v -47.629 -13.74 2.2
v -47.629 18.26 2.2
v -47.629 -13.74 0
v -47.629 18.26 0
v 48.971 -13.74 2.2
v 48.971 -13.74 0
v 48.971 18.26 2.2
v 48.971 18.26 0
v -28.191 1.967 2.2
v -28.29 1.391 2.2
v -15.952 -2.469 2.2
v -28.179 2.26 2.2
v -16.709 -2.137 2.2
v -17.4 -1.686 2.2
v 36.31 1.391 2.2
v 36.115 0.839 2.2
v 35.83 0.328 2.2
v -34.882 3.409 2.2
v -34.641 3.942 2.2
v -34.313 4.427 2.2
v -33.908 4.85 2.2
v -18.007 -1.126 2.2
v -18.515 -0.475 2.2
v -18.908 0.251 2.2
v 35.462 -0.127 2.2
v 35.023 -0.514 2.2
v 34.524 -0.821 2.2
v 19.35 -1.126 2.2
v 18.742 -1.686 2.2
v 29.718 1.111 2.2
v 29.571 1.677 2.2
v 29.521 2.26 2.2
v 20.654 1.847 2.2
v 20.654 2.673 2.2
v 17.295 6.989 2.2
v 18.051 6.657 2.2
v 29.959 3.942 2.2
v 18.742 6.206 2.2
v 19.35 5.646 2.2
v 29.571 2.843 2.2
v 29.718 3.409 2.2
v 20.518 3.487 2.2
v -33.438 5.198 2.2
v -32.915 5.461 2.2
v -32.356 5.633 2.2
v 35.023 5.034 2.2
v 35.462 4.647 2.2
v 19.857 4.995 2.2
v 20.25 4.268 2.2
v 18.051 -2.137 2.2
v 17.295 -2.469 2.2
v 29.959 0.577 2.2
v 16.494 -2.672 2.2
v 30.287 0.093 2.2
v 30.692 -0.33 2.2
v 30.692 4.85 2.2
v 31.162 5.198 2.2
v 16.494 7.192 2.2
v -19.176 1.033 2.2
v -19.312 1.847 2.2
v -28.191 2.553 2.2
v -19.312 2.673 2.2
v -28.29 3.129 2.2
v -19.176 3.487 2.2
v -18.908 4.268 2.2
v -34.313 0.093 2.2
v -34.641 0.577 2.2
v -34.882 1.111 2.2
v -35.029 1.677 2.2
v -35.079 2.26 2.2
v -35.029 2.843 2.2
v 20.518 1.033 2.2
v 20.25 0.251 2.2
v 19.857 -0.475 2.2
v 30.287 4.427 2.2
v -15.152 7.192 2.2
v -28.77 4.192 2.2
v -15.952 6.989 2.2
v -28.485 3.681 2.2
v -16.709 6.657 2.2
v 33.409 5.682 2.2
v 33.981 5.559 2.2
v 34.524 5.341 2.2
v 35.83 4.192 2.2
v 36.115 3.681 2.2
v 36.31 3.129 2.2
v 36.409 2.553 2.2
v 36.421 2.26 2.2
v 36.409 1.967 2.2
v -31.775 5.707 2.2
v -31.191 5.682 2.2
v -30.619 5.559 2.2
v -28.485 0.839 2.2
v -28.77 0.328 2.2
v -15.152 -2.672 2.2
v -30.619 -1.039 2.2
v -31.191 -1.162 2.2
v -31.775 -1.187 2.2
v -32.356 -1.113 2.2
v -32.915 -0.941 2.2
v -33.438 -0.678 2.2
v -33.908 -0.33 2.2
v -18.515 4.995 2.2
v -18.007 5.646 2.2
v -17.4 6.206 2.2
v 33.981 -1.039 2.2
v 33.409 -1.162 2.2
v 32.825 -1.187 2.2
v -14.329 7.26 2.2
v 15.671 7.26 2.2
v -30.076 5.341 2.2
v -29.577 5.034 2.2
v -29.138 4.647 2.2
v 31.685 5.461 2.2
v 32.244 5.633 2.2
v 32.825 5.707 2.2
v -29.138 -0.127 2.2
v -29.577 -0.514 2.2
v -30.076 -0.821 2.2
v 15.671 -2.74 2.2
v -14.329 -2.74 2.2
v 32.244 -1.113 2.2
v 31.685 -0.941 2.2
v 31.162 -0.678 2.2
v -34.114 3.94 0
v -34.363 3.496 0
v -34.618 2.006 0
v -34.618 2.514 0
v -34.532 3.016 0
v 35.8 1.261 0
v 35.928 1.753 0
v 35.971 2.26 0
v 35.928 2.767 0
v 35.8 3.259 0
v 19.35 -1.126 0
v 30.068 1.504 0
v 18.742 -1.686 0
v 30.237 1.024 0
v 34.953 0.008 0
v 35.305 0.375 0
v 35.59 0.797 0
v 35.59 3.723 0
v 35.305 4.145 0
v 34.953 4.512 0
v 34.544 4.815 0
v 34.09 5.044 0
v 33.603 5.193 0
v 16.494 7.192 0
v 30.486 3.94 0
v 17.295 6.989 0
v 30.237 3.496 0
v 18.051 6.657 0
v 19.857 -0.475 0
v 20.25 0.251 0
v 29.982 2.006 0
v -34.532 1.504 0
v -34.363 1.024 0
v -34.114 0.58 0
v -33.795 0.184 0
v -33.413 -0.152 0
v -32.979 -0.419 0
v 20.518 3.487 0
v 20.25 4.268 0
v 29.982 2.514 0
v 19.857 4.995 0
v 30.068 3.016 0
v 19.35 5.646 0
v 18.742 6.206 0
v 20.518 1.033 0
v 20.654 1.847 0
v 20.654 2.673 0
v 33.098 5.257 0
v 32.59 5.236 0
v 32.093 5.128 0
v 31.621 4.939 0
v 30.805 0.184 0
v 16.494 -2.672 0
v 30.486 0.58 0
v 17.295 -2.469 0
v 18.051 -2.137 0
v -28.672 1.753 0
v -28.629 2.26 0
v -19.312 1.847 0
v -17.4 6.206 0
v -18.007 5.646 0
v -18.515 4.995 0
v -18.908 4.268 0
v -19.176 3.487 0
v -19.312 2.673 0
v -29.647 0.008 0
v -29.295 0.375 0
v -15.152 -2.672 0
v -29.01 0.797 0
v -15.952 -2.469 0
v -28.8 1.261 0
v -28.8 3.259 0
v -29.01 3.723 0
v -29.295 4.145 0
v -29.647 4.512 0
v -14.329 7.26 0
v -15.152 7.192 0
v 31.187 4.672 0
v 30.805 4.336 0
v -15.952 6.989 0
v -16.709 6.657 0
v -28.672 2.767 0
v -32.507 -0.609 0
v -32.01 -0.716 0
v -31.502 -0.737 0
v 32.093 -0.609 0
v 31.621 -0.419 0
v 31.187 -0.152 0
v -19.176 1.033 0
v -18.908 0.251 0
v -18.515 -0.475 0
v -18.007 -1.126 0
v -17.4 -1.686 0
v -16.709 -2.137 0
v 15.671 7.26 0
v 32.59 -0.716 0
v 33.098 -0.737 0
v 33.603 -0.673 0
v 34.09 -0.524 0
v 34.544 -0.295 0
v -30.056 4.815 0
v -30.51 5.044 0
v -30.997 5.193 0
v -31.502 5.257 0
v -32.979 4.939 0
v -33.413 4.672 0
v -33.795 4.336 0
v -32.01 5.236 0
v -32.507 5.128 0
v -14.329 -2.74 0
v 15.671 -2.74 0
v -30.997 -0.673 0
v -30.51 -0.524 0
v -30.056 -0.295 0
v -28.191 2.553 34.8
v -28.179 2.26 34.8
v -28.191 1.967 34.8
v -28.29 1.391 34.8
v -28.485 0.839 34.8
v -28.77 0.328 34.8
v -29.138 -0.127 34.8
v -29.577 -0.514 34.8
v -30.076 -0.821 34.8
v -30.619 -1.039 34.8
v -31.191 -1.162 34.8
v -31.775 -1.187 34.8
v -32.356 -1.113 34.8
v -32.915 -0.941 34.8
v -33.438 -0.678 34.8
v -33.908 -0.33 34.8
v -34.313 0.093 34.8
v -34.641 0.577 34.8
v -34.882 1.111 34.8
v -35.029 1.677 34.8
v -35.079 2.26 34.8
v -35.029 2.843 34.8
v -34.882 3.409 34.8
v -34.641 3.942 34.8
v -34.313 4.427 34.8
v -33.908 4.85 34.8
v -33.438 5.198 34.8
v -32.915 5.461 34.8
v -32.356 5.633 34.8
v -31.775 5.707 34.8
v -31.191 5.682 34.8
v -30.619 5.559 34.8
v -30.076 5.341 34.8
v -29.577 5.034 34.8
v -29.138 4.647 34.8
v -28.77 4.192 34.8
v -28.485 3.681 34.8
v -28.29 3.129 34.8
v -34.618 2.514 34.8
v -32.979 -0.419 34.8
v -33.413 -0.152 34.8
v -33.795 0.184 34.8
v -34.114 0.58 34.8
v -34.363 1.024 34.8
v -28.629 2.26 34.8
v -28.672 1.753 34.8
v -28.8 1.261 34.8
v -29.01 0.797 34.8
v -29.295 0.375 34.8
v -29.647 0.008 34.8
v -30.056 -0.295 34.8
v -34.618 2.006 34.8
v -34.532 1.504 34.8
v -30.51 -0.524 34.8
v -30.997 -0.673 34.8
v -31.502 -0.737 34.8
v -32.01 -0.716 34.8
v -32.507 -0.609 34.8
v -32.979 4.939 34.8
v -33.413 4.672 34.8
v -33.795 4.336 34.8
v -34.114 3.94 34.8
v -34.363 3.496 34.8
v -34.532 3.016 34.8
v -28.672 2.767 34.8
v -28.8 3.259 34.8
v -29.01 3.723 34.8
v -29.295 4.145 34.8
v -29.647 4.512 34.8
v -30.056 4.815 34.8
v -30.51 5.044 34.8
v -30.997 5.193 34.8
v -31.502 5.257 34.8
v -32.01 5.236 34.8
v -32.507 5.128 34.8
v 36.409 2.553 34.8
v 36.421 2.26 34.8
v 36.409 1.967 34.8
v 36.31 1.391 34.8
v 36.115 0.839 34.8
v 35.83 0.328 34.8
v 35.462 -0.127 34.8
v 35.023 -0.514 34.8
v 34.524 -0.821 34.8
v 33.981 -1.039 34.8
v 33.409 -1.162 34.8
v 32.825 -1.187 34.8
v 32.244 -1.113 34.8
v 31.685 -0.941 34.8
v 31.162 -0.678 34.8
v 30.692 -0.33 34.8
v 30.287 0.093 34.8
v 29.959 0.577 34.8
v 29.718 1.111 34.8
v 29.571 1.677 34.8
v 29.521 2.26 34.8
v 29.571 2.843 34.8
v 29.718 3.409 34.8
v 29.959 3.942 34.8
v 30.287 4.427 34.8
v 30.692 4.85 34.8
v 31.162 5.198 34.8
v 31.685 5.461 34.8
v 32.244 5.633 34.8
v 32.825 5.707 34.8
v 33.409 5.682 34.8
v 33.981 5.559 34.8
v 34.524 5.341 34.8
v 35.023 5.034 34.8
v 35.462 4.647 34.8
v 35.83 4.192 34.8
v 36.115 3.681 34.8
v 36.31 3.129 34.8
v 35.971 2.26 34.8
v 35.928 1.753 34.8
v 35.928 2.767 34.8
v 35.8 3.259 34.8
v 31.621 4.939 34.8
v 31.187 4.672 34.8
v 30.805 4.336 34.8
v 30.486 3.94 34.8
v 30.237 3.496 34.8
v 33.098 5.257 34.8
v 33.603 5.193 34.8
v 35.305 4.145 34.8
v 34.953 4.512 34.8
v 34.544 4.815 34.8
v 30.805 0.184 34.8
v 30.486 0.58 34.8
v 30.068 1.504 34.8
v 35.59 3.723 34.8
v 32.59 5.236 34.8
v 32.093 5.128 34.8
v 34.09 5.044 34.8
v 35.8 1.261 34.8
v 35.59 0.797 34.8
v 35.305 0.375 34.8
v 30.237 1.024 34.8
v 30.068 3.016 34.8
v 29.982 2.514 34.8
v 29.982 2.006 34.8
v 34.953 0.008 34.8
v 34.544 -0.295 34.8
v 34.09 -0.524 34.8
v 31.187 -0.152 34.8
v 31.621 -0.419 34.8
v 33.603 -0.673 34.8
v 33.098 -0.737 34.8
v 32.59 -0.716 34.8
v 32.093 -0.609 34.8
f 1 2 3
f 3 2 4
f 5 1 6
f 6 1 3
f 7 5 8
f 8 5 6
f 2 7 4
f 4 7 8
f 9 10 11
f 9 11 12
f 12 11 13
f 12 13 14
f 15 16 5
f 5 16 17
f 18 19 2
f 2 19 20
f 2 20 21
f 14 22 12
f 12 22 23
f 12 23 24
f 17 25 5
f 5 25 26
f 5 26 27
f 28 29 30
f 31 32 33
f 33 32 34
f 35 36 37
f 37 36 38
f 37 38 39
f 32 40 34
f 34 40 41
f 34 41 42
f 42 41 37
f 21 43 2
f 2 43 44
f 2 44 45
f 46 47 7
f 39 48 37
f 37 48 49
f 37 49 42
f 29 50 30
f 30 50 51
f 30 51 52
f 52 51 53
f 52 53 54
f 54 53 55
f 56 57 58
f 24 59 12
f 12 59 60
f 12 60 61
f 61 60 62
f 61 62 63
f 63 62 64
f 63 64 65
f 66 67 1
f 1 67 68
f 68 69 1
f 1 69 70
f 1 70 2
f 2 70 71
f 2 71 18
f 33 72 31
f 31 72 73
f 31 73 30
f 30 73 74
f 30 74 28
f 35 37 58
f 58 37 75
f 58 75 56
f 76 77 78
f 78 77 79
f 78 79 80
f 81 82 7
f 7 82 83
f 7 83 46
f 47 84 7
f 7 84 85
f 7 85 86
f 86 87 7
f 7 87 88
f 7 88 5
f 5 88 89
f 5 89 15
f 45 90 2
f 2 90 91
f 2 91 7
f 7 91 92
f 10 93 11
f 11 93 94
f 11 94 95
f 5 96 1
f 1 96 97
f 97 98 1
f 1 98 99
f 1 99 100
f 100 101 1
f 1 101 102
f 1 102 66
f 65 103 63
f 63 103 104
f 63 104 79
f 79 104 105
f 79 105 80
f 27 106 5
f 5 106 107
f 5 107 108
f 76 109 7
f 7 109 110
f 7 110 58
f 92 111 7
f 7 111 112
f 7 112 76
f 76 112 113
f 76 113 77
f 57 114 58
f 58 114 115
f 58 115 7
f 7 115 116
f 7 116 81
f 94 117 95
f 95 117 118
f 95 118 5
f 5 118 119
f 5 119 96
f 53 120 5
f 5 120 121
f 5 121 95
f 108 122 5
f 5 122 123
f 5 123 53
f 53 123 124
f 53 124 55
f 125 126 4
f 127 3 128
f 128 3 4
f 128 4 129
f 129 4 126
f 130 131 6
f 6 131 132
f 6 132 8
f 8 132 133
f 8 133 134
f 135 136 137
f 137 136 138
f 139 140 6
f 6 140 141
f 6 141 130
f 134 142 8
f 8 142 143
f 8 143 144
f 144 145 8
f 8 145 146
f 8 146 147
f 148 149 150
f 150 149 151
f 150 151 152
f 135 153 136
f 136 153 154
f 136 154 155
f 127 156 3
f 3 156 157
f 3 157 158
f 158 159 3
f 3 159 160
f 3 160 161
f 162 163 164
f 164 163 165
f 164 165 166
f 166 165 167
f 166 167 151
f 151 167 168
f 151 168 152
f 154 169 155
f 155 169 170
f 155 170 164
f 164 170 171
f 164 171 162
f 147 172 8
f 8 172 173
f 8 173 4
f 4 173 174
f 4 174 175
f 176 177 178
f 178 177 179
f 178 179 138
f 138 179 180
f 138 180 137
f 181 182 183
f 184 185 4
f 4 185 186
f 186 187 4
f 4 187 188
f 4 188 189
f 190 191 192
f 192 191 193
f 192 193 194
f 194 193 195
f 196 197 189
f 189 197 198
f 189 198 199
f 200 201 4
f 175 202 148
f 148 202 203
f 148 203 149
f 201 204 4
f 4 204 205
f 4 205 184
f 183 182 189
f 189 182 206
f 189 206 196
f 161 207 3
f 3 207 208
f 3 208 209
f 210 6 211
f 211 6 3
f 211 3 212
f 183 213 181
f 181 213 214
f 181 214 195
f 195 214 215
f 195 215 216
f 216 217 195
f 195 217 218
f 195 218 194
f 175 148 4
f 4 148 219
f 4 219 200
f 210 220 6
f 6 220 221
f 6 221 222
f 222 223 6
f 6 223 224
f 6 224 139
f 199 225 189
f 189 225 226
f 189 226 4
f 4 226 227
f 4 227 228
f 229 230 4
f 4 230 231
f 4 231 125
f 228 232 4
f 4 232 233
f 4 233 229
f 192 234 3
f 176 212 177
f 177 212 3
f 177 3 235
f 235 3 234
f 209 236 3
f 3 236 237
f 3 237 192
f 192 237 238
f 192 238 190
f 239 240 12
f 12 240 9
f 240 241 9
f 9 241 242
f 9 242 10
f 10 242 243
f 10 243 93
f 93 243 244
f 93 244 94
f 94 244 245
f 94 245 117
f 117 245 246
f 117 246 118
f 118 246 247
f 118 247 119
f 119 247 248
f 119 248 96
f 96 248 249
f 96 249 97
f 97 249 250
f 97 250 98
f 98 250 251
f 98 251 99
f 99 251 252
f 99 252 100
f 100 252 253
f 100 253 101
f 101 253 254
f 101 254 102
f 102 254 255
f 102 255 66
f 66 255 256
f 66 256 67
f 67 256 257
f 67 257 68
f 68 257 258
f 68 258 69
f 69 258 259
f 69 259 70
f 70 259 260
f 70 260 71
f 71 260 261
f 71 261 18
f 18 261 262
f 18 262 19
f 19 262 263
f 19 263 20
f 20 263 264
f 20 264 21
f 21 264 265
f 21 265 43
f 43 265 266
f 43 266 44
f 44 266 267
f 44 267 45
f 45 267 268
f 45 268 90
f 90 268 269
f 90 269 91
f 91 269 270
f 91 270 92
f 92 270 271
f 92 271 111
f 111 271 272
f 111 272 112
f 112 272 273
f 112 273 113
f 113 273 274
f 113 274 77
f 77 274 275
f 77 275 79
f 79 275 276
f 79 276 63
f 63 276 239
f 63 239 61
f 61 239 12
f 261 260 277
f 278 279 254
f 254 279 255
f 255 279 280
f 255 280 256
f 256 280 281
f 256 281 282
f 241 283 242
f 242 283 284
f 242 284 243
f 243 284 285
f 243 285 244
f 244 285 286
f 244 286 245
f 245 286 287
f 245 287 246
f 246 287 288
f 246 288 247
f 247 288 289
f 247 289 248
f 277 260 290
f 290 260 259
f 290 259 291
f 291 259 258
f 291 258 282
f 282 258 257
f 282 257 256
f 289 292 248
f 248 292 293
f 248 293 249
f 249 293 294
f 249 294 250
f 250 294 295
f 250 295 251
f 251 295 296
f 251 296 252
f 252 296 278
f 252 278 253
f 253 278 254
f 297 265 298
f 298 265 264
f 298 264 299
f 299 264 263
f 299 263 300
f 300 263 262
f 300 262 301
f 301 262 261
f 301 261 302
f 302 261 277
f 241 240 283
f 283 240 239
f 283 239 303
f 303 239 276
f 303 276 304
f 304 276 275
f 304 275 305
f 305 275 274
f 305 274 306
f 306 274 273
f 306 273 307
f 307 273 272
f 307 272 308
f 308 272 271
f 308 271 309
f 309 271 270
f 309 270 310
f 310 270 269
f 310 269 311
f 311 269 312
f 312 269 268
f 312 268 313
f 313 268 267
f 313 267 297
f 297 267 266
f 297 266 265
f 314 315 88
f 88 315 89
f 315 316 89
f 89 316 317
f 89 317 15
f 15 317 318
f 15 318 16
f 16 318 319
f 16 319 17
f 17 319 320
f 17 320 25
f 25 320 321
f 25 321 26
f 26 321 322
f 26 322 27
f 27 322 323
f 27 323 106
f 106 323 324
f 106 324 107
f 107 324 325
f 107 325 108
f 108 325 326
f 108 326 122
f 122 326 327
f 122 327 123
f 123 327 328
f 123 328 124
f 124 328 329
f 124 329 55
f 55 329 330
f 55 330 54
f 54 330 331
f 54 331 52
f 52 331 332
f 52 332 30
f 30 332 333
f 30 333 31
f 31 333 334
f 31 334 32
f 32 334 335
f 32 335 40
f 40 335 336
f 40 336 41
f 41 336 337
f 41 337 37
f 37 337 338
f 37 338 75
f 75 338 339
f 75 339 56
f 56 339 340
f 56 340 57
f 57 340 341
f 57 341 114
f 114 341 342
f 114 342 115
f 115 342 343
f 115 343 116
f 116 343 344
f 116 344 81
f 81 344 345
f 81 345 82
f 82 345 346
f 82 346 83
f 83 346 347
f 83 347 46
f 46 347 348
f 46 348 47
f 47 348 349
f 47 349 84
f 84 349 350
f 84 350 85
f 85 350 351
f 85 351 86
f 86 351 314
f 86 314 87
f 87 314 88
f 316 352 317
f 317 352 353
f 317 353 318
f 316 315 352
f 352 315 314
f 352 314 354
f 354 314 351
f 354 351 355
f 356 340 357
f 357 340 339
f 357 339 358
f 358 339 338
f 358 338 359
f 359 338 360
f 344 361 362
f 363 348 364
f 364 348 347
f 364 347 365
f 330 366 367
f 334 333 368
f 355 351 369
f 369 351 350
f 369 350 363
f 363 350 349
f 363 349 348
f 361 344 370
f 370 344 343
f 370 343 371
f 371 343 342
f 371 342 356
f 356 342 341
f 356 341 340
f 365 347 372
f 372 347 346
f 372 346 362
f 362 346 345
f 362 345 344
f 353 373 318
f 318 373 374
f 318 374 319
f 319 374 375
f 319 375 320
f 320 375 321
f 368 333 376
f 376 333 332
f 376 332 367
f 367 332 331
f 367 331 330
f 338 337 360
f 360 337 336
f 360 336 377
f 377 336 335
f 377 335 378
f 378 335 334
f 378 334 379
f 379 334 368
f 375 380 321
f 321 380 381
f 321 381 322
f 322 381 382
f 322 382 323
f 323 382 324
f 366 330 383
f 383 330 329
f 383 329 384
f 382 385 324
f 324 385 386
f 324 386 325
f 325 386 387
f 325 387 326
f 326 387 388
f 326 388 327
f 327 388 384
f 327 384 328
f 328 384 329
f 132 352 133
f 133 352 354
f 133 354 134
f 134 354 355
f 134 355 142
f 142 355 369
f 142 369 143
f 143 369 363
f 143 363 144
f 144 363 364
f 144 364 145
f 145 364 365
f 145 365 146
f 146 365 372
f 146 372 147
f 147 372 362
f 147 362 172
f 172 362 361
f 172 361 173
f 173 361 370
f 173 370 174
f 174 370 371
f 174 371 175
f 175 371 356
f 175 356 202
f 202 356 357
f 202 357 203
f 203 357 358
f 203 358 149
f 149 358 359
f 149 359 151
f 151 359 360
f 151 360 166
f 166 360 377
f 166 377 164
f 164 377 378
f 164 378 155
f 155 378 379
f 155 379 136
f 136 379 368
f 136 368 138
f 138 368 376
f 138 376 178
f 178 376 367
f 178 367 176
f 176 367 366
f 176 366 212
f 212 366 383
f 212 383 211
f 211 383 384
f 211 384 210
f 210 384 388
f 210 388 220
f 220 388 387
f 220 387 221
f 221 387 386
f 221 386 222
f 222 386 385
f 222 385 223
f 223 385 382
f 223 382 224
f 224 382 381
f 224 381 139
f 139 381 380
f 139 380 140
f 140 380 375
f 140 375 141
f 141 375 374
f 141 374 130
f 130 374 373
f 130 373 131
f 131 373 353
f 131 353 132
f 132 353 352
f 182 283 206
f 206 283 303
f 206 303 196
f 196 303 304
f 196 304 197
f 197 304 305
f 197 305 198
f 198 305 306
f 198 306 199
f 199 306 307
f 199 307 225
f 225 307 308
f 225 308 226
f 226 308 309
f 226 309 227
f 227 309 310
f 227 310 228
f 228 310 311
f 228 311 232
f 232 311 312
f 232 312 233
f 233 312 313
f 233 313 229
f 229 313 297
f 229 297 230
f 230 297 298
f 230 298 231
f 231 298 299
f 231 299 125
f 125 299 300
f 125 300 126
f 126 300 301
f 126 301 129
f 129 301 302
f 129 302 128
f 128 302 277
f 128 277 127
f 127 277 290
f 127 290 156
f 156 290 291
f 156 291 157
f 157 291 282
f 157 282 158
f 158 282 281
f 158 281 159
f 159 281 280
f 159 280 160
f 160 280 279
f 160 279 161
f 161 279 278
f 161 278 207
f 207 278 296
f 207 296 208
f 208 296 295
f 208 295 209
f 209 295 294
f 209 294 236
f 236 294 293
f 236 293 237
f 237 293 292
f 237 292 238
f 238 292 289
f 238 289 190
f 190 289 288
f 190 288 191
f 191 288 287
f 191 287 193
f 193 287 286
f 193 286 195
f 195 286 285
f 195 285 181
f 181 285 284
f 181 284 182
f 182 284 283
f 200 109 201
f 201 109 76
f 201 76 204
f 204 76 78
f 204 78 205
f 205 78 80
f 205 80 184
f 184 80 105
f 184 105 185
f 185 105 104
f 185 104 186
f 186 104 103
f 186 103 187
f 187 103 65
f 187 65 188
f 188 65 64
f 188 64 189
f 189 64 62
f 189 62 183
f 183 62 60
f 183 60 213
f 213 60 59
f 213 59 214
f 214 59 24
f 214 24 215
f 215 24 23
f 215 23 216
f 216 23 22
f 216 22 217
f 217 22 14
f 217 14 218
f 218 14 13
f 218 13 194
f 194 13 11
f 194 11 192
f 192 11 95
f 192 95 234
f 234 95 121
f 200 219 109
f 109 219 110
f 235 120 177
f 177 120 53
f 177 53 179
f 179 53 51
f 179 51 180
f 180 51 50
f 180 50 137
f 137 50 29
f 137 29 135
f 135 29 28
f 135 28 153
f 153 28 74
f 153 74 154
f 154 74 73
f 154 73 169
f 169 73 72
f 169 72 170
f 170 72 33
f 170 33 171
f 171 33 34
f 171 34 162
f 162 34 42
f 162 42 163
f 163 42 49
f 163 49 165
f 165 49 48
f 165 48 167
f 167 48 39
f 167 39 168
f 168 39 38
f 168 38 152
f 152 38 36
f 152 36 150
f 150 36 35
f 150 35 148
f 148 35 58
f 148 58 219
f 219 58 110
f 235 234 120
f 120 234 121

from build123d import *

# Parameters (mm, degrees)
ESQUISSE1_W             = 96.6
ESQUISSE1_H             = 32
BOSS_EXTRU_1_DEPTH      = 2.2
ESQUISSE6_R             = 3.45
BOSS_EXTRU_2_DEPTH      = 32.6
ESQUISSE7_R             = 3
ENL_V_MAT_EXTRU_1_DEPTH = 35.8


with BuildPart() as part:
    # Esquisse1 → Boss.-Extru.1 (new body)
    with BuildSketch(Plane.XY):
        with Locations((0.671156739, 2.259938231)):
            Rectangle(ESQUISSE1_W, ESQUISSE1_H)
    extrude(amount=BOSS_EXTRU_1_DEPTH)

    # Esquisse6 → Boss.-Extru.2 (add)
    with BuildSketch(Plane.XY.offset(2.2)):
        with Locations((-31.628843261, 2.259938231)):
            Circle(ESQUISSE6_R)
        with Locations((32.971156739, 2.259938231)):
            Circle(ESQUISSE6_R)
    extrude(amount=BOSS_EXTRU_2_DEPTH)

    # Esquisse7 → Enlèv. mat.-Extru.1 (cut, through all)
    with BuildSketch(Plane.XY.offset(34.8)):
        with Locations((-31.628843261, 2.259938231)):
            Circle(ESQUISSE7_R)
        with Locations((32.971156739, 2.259938231)):
            Circle(ESQUISSE7_R)
        with BuildLine():
            Line((-14.328843261, 7.259938231), (15.671156739, 7.259938231))
            ThreePointArc((15.671156739, 7.259938231), (20.671156739, 2.259938231), (15.671156739, -2.740061769))
            Line((15.671156739, -2.740061769), (-14.328843261, -2.740061769))
            ThreePointArc((-14.328843261, -2.740061769), (-19.328843261, 2.259938231), (-14.328843261, 7.259938231))
        make_face()
    extrude(amount=-ENL_V_MAT_EXTRU_1_DEPTH, mode=Mode.SUBTRACT)


solid = part.part
